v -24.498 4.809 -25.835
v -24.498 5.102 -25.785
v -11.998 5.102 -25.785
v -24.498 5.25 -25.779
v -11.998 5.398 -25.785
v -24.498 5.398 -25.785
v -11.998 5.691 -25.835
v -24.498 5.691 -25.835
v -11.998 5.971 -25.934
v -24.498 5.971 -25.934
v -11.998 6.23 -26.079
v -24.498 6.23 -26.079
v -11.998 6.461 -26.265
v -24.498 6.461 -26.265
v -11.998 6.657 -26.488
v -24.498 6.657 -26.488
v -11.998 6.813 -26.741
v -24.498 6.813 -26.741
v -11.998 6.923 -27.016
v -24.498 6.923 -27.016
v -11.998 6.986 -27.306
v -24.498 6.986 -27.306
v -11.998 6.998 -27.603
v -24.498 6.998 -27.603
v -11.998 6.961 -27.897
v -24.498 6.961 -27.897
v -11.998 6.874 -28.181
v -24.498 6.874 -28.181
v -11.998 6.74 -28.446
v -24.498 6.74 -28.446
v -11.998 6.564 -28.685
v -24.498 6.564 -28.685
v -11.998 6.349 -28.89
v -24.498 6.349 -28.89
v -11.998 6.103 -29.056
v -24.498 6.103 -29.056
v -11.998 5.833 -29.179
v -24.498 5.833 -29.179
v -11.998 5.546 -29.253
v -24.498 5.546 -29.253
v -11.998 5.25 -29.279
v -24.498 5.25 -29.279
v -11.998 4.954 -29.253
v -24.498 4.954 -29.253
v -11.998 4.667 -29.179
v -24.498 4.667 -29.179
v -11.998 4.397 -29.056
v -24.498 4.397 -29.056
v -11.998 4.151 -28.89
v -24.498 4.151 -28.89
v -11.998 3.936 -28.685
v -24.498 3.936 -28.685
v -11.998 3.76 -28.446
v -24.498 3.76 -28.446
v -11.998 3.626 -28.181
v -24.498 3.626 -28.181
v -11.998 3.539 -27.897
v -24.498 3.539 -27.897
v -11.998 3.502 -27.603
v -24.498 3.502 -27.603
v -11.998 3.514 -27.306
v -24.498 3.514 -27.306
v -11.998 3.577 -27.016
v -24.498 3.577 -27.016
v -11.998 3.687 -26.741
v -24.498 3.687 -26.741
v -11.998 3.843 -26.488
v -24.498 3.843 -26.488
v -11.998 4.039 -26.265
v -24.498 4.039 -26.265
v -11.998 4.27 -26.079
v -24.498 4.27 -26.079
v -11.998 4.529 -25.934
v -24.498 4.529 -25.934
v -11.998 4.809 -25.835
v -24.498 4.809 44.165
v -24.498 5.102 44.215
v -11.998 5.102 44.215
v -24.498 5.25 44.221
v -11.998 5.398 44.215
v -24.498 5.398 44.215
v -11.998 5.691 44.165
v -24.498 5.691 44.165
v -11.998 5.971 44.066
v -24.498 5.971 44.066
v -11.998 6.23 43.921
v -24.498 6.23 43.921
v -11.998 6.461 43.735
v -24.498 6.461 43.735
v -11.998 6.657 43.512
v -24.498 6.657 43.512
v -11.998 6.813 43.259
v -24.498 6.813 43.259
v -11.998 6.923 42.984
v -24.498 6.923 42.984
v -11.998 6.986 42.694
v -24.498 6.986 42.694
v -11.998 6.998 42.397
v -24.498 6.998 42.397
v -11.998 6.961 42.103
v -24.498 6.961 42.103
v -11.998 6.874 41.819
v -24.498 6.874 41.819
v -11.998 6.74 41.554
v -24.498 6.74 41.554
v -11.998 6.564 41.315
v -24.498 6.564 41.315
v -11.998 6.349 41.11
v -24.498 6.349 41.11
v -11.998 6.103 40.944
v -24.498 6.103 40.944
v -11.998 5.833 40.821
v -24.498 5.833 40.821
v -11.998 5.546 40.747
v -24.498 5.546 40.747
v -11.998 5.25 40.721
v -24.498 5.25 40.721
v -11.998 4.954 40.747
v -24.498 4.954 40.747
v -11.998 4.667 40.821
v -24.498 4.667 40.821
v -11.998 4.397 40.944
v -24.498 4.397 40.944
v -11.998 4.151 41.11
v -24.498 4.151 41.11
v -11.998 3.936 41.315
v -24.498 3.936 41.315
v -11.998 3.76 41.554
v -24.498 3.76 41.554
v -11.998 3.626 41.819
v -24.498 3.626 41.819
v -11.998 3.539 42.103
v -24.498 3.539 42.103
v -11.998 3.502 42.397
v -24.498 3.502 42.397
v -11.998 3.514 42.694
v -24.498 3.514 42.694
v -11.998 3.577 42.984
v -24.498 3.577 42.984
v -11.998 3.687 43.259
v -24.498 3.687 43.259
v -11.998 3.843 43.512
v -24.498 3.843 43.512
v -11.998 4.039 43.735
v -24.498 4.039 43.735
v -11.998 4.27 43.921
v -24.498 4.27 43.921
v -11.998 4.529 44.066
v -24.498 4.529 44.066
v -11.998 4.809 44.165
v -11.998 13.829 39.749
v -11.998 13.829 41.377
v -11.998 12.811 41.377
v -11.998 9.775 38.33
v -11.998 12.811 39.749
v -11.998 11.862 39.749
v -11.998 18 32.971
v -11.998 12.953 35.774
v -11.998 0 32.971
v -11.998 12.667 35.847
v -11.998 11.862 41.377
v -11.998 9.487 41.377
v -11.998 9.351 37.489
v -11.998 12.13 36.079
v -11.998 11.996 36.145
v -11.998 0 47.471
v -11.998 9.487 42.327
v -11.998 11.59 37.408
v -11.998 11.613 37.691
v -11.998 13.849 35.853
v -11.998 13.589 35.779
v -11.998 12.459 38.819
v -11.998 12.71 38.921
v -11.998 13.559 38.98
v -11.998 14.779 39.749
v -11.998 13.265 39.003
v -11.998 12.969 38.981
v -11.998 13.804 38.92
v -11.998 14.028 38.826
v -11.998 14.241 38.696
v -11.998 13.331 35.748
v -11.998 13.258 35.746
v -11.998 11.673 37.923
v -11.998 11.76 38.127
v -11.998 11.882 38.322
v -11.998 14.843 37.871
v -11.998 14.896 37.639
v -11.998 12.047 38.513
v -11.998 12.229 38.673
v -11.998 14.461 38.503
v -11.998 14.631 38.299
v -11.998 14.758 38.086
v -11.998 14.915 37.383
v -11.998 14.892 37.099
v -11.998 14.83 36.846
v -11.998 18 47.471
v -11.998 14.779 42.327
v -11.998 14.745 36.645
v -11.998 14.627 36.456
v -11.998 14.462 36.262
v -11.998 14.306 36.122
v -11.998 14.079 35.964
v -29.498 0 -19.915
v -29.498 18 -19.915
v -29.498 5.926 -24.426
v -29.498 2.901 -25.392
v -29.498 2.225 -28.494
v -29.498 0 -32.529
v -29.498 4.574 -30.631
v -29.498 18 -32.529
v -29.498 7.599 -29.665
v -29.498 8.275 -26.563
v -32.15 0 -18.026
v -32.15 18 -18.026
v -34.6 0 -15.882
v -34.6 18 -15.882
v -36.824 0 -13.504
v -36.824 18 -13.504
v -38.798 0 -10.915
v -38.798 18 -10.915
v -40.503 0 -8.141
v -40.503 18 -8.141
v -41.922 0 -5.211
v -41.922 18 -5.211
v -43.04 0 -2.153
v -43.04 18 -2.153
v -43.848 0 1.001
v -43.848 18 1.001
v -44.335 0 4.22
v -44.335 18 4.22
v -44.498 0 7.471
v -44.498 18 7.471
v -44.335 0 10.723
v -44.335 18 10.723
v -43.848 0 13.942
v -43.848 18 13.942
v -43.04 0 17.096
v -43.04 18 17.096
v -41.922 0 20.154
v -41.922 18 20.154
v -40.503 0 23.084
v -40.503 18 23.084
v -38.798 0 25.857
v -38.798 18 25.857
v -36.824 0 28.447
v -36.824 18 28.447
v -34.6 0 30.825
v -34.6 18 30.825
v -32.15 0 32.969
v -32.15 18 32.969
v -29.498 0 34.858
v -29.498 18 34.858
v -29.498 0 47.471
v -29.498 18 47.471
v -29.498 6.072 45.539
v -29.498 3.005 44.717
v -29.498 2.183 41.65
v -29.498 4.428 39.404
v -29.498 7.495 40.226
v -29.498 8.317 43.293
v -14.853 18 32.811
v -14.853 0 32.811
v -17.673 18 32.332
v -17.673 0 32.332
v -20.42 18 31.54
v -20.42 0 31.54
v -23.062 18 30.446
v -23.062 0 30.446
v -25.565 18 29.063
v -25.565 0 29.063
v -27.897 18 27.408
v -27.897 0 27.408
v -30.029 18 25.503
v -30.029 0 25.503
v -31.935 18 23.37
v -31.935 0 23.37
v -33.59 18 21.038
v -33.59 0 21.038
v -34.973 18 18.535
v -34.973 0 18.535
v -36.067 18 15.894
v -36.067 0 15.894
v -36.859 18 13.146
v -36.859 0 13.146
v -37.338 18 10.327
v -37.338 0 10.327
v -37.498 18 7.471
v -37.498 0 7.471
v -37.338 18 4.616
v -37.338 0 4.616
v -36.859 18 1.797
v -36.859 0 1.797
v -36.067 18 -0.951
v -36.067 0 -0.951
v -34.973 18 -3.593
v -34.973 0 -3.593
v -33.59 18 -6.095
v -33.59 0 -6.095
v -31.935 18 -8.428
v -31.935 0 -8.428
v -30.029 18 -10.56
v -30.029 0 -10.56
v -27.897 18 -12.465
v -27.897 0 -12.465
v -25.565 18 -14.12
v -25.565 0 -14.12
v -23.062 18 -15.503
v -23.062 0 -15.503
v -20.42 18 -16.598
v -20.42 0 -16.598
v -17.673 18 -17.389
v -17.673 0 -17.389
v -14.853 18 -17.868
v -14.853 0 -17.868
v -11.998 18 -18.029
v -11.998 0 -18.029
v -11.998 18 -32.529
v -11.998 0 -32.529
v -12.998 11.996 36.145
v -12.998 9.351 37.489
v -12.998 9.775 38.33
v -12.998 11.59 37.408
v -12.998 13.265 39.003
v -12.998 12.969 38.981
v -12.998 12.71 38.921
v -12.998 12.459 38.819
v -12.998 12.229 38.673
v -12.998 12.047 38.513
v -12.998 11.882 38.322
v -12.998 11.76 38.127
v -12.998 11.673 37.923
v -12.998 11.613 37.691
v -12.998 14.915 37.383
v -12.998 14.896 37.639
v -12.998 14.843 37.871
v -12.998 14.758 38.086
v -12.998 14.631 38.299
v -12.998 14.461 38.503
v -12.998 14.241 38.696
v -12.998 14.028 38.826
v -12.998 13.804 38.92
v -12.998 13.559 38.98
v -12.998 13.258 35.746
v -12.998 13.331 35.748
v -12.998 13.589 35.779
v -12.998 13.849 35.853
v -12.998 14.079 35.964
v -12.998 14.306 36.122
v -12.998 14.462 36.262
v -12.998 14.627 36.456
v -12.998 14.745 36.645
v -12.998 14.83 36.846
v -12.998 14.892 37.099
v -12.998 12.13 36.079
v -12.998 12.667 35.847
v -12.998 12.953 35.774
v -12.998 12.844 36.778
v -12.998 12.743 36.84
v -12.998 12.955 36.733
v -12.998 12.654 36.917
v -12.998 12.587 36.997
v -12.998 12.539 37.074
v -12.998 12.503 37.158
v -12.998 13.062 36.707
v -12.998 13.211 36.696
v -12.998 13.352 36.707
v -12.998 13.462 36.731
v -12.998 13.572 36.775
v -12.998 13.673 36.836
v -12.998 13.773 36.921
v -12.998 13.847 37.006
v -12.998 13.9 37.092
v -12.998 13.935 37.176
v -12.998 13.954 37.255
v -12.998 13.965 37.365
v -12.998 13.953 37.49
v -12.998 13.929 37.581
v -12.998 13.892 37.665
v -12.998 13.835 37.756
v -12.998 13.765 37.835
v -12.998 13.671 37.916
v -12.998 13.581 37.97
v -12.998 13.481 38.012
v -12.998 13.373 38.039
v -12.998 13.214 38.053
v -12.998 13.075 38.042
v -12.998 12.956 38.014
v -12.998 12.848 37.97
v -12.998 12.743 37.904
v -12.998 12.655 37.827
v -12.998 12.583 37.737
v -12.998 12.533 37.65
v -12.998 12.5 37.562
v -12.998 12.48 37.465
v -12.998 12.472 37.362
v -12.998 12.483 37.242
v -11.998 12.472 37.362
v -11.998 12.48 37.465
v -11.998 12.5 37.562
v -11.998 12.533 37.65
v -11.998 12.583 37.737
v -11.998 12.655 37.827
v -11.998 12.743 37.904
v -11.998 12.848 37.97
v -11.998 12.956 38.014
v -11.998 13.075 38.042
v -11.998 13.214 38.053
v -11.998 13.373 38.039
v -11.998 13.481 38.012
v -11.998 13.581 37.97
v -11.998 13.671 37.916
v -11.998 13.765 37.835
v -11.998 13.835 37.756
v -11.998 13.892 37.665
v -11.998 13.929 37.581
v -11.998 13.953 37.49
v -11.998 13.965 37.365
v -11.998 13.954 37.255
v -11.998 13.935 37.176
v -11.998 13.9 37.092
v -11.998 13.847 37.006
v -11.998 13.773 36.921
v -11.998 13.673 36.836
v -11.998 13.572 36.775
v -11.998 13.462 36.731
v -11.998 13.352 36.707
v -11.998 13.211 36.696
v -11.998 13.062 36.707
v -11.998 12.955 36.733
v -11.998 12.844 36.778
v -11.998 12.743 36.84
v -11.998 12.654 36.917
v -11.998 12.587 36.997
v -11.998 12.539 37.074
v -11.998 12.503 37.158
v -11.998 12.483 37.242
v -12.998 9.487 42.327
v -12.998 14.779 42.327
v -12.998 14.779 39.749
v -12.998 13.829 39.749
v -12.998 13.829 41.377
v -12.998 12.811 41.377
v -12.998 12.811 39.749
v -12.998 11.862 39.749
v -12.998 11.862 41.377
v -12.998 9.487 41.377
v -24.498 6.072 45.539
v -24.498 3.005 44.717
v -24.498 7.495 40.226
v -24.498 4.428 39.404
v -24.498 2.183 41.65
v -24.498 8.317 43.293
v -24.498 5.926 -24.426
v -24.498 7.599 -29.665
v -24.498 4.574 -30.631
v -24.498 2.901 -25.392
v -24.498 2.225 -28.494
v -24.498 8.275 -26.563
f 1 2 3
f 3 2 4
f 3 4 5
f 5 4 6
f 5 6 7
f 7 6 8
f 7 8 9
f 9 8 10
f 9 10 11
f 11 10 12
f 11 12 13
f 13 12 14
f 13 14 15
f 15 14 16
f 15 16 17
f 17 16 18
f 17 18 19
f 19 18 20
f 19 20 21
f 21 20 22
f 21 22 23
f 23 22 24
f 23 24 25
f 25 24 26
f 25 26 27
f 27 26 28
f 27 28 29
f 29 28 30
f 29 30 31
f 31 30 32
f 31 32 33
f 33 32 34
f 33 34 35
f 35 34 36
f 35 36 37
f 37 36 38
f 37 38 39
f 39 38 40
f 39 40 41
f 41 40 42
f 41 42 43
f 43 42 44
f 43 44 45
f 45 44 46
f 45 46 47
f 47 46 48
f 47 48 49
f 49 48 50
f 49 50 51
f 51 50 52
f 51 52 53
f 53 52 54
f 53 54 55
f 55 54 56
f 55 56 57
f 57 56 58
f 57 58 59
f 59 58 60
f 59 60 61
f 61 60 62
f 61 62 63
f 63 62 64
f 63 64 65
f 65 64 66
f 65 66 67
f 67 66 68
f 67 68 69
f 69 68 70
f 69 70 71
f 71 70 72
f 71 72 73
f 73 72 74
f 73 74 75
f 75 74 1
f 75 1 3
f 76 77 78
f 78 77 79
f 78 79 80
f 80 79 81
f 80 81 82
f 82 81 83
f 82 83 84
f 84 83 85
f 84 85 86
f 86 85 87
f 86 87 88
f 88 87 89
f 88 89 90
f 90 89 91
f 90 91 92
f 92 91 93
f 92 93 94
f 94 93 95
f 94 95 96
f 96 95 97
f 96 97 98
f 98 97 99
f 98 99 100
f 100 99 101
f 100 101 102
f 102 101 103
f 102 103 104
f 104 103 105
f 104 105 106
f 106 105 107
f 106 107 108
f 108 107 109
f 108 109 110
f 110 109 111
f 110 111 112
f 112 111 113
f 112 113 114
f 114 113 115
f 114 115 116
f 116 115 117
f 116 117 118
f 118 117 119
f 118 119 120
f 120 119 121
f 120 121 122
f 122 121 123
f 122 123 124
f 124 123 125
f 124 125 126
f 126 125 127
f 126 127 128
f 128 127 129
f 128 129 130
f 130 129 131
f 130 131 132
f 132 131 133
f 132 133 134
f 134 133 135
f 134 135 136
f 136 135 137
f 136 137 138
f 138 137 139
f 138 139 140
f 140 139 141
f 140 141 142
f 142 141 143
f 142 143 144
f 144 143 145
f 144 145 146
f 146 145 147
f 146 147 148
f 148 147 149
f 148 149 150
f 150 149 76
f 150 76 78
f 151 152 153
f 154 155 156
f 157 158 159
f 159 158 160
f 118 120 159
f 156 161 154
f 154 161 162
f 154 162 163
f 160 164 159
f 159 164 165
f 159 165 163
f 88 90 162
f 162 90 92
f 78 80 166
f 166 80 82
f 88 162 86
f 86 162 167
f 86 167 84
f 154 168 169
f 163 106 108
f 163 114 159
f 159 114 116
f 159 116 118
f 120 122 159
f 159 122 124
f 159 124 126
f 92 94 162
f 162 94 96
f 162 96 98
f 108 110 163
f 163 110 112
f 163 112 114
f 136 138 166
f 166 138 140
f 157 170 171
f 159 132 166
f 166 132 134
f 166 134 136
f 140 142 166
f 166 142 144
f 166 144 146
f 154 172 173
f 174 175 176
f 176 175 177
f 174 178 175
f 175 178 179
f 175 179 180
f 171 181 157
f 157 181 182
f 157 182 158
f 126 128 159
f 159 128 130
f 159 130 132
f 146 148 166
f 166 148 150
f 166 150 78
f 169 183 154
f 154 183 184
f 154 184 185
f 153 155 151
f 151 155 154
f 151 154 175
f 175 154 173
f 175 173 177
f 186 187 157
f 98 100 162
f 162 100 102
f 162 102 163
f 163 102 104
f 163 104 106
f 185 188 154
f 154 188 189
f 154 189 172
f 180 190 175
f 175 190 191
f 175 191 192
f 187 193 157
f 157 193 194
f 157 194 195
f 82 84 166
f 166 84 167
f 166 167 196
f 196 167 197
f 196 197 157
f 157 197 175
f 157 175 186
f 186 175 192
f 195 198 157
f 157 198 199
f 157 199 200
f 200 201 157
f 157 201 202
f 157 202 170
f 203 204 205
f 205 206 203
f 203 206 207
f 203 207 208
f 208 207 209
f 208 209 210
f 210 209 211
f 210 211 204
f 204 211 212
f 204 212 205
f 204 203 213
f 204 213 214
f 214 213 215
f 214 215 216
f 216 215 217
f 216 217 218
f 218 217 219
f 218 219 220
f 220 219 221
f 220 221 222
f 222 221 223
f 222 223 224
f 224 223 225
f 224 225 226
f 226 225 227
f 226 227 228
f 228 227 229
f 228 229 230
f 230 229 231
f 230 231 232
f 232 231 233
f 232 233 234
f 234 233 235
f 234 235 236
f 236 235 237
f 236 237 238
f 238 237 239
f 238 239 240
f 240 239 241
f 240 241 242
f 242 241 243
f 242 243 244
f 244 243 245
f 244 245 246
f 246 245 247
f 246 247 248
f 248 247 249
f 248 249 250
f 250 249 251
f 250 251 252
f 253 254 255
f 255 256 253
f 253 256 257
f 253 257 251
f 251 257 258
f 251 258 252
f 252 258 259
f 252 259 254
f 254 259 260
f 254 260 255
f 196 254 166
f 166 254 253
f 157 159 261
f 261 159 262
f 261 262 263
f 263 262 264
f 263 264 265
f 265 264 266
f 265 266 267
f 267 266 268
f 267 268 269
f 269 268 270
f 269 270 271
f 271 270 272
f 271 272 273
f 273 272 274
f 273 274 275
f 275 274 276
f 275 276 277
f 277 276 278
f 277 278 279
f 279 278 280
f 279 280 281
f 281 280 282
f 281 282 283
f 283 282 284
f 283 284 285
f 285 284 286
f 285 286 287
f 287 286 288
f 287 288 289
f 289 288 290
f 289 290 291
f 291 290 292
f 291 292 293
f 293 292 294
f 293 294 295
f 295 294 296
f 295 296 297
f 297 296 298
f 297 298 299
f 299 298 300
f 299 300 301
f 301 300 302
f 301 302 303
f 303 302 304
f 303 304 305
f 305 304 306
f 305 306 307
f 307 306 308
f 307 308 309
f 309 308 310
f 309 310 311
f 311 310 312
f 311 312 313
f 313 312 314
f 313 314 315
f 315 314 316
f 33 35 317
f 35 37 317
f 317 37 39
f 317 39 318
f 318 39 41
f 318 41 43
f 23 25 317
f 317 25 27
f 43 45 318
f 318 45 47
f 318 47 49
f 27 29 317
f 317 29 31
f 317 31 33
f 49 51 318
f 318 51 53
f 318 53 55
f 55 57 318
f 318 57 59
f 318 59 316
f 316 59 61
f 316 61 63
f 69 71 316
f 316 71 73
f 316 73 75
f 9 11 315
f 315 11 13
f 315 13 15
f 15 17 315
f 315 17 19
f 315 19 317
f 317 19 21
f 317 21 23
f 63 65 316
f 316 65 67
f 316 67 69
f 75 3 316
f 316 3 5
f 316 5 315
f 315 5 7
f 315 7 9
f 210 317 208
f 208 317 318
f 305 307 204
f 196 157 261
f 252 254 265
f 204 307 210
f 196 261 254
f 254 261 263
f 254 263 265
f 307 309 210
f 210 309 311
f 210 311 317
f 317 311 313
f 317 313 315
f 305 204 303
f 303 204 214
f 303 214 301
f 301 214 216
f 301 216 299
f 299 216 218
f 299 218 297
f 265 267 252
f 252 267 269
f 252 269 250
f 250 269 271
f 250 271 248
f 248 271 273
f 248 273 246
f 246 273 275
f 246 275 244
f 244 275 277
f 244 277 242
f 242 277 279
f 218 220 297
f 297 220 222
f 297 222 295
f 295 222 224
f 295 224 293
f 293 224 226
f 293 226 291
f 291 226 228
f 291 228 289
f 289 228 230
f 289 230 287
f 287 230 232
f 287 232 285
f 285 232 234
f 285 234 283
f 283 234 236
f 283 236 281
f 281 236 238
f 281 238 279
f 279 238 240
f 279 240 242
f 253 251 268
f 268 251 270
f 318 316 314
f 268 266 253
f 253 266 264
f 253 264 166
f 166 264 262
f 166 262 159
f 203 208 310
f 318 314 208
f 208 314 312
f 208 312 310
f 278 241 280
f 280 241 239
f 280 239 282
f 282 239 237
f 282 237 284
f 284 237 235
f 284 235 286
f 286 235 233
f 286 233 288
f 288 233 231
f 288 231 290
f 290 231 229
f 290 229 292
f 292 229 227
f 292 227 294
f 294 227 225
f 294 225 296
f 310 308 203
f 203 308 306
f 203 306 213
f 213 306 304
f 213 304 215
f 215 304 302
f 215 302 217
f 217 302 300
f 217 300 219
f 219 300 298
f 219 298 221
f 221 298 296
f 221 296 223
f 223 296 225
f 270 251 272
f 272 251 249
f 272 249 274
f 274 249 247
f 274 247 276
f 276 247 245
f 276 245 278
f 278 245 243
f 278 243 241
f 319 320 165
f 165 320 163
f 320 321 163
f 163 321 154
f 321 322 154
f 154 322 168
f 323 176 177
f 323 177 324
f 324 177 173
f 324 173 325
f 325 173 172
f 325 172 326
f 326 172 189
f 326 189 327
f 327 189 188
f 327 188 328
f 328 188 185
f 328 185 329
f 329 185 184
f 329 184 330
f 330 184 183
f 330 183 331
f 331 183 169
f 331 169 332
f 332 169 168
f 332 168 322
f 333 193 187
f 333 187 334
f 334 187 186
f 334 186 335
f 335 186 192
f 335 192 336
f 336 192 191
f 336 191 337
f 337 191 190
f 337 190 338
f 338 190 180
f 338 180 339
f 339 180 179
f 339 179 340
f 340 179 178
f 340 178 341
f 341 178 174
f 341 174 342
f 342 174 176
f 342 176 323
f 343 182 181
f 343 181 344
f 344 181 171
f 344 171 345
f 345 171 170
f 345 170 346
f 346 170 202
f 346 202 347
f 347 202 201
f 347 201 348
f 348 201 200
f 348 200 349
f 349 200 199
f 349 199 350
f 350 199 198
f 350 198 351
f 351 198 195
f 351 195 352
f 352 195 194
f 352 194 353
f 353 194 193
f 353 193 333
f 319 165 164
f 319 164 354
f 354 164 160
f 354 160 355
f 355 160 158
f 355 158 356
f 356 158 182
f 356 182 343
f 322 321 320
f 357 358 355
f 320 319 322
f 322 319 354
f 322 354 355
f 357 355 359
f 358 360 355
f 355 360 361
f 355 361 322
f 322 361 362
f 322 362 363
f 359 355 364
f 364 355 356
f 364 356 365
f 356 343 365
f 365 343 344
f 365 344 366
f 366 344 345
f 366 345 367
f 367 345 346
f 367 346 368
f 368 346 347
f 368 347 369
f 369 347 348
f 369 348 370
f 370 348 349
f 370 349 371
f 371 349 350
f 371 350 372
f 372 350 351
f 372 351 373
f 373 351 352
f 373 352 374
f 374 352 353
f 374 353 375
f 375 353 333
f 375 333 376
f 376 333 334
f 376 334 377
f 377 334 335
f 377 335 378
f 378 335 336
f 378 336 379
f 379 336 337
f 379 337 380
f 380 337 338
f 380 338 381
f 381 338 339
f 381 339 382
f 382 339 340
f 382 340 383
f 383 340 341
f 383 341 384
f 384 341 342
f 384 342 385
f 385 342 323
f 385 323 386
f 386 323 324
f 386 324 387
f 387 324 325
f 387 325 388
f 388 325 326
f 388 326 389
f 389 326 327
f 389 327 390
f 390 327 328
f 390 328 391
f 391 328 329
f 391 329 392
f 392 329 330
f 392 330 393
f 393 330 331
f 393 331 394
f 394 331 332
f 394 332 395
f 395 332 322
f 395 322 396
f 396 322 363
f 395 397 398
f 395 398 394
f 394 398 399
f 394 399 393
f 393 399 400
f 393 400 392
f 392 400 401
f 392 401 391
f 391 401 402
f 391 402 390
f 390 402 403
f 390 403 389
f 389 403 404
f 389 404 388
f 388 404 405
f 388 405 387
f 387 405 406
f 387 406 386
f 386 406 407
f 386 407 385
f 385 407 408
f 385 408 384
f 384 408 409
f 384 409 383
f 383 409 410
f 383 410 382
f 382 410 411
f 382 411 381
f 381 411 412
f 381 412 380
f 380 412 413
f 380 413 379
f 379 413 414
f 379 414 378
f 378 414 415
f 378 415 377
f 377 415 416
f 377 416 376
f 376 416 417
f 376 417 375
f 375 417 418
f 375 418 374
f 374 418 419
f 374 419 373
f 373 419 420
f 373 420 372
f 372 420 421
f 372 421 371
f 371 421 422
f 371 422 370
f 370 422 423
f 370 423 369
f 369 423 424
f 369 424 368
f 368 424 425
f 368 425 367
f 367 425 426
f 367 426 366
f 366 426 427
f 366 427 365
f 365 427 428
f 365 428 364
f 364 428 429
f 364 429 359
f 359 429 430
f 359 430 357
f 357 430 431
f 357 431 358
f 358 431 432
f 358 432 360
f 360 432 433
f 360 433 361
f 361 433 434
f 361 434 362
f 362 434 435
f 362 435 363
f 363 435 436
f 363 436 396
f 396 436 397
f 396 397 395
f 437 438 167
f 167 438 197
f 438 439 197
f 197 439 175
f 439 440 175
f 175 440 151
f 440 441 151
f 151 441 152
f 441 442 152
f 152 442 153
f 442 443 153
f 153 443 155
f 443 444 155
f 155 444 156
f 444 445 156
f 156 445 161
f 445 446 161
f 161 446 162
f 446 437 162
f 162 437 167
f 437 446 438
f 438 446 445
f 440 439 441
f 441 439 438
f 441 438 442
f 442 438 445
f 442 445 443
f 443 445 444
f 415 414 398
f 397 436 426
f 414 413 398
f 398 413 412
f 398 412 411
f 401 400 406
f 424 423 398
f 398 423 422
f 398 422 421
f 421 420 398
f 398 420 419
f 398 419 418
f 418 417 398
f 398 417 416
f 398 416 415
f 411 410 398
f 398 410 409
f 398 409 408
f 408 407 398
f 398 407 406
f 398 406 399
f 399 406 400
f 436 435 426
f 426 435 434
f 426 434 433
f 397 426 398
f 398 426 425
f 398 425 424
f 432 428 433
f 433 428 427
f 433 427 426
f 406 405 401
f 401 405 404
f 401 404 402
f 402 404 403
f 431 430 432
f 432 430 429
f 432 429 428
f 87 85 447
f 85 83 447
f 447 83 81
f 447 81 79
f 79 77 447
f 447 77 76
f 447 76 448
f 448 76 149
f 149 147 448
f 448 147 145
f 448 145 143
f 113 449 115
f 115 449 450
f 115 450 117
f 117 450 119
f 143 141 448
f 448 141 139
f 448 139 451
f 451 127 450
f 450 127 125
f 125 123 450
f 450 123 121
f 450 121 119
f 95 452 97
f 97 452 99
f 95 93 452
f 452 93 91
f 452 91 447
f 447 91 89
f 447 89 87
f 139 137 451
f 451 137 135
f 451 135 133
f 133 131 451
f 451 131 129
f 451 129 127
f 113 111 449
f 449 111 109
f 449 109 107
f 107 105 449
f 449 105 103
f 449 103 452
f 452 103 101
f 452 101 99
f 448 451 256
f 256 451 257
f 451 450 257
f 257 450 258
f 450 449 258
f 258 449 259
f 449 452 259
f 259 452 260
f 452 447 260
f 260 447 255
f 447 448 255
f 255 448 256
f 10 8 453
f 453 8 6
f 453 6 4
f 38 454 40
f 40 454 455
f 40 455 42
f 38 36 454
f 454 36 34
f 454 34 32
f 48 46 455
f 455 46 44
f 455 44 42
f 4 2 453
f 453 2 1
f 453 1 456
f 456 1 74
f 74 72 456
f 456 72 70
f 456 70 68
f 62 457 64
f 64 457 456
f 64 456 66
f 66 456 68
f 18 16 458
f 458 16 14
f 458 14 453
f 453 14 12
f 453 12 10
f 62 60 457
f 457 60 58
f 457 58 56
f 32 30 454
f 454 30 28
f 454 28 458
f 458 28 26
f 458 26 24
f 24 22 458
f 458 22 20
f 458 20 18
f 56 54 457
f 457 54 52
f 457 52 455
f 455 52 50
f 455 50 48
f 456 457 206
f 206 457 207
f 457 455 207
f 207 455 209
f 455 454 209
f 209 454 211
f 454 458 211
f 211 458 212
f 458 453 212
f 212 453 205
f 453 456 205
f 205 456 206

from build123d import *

# Parameters (mm, degrees)
BOSS_EXTRUDE1_DEPTH = 18
SKETCH2_R           = 1.75
CUT_EXTRUDE1_DEPTH  = 33.5
CUT_EXTRUDE2_DEPTH  = 1
CUT_EXTRUDE3_DEPTH  = 5


with BuildPart() as part:
    # Sketch1 → Boss-Extrude1 (new body)
    with BuildSketch(Plane(origin=(0, 0, 0), x_dir=(1, 0, 0), z_dir=(0, 1, 0))):
        with BuildLine():
            Line((-11.998275301, 32.528571429), (-29.498275301, 32.528571429))
            Line((-29.498275301, 32.528571429), (-29.498275301, 19.914699304))
            ThreePointArc((-29.498275301, 19.914699304), (-21.114218589, 23.723916882), (-11.998275301, 25.028571429))
            Line((-11.998275301, 25.028571429), (-11.998275301, 32.528571429))
        make_face()
        with BuildLine():
            ThreePointArc((-11.998275301, 25.028571429), (-21.114218589, 23.723916882), (-29.498275301, 19.914699304))
            ThreePointArc((-29.498275301, 19.914699304), (-44.498275301, -7.471428571), (-29.498275301, -34.857556447))
            ThreePointArc((-29.498275301, -34.857556447), (-21.114218589, -38.666774025), (-11.998275301, -39.971428571))
            Line((-11.998275301, -39.971428571), (-11.998275301, -32.971428571))
            ThreePointArc((-11.998275301, -32.971428571), (-37.498275301, -7.471428571), (-11.998275301, 18.028571429))
            Line((-11.998275301, 18.028571429), (-11.998275301, 25.028571429))
        make_face()
        with BuildLine():
            Line((-29.498275301, -34.857556447), (-29.498275301, -47.471428571))
            Line((-29.498275301, -47.471428571), (-11.998275301, -47.471428571))
            Line((-11.998275301, -47.471428571), (-11.998275301, -39.971428571))
            ThreePointArc((-11.998275301, -39.971428571), (-21.114218589, -38.666774025), (-29.498275301, -34.857556447))
        make_face()
    extrude(amount=BOSS_EXTRUDE1_DEPTH)

    # Sketch2 → Cut-Extrude1 (cut, through all)
    with BuildSketch(Plane(origin=(-11.998275301, 0, 0), x_dir=(0, 0, -1), z_dir=(1, 0, 0))):
        with Locations((-42.471428571, 5.25)):
            Circle(SKETCH2_R)
        with Locations((27.528571429, 5.25)):
            Circle(SKETCH2_R)
    extrude(amount=-CUT_EXTRUDE1_DEPTH, mode=Mode.SUBTRACT)

    # Sketch3 → Cut-Extrude2 (cut)
    with BuildSketch(Plane(origin=(-11.998275301, 0, 0), x_dir=(0, 0, -1), z_dir=(1, 0, 0))):
        Polygon((-42.326802517, 14.778828324), (-39.748811064, 14.778828324), (-39.748811064, 13.829042), (-41.377016192, 13.829042), (-41.377016192, 12.811413795), (-39.748811064, 12.811413795), (-39.748811064, 11.86162747), (-41.377016192, 11.86162747), (-41.377016192, 9.487161658), (-42.326802517, 9.487161658), align=None)
        with BuildLine():
            Line((-37.488828425, 9.351477897), (-38.330491753, 9.775489649))
            Line((-38.330491753, 9.775489649), (-37.408266192, 11.590259948))
            add(Edge.make_bspline(
                [(-37.408266192, 11.590259948), (-37.462753396, 11.591648755), (-37.569724958, 11.594375318), (-37.727232239, 11.617033031), (-37.87785266, 11.655711194), (-38.023361539, 11.707201572), (-38.161746535, 11.77622976), (-38.294685676, 11.858611279), (-38.420338635, 11.95759149), (-38.539294546, 12.068849341), (-38.647905095, 12.191825278), (-38.742176754, 12.324083818), (-38.824345348, 12.462269948), (-38.888244154, 12.60950332), (-38.939568, 12.76303987), (-38.977067789, 12.92367432), (-38.998111679, 13.092111431), (-39.00105302, 13.206747887), (-39.00255038, 13.265106369)],
                knots=[0, 0, 0, 0, 0.000163413, 0.000320819, 0.000476106, 0.000629341, 0.000782939, 0.000939124, 0.001097732, 0.001261968, 0.001427204, 0.001589, 0.001748625, 0.001908563, 0.002069464, 0.002233772, 0.002402593, 0.002577655, 0.002577655, 0.002577655, 0.002577655], degree=3))
            add(Edge.make_bspline(
                [(-39.00255038, 13.265106369), (-39.001161497, 13.321713522), (-38.99842473, 13.433256746), (-38.975695616, 13.5969659), (-38.938289378, 13.754150604), (-38.88696936, 13.904784157), (-38.818649356, 14.047850808), (-38.738682529, 14.185590652), (-38.640926713, 14.315153998), (-38.530495897, 14.437101726), (-38.409635229, 14.548662366), (-38.281412206, 14.646751431), (-38.146409838, 14.728744465), (-38.006363041, 14.797603487), (-37.858740367, 14.849050664), (-37.705675127, 14.887867179), (-37.546027089, 14.910269855), (-37.43766133, 14.913086693), (-37.382825487, 14.914512085)],
                knots=[0, 0, 0, 0, 0.000169767, 0.000334522, 0.000494702, 0.000653936, 0.000810896, 0.000969607, 0.001130944, 0.0012968, 0.001462589, 0.001623717, 0.001780246, 0.001935749, 0.002090981, 0.002248323, 0.002408879, 0.002573351, 0.002573351, 0.002573351, 0.002573351], degree=3))
            add(Edge.make_bspline(
                [(-37.382825487, 14.914512085), (-37.32548798, 14.913331855), (-37.212741531, 14.911011091), (-37.047695871, 14.885402378), (-36.889786863, 14.846113929), (-36.738372898, 14.792752199), (-36.595333717, 14.720329287), (-36.459472442, 14.633529923), (-36.331240989, 14.530433614), (-36.212016472, 14.414011914), (-36.103583105, 14.287381533), (-36.007470418, 14.154830073), (-35.92673168, 14.016616709), (-35.860601716, 13.873974949), (-35.809086806, 13.726681326), (-35.773676871, 13.574526911), (-35.750168601, 13.417771894), (-35.747493829, 13.311480409), (-35.746140124, 13.257686164)],
                knots=[0, 0, 0, 0, 0.000171885, 0.000337989, 0.000499701, 0.000659639, 0.000818449, 0.000979588, 0.001142488, 0.001311152, 0.001478788, 0.001642063, 0.001801688, 0.0019582, 0.00211308, 0.00226889, 0.002426296, 0.002587592, 0.002587592, 0.002587592, 0.002587592], degree=3))
            add(Edge.make_bspline(
                [(-35.746140124, 13.257686164), (-35.746878854, 13.21665857), (-35.748366821, 13.134019773), (-35.762997646, 13.010093938), (-35.785195556, 12.885824631), (-35.810960929, 12.781344964), (-35.837972338, 12.693274952), (-35.864257515, 12.618563879), (-35.897982171, 12.535620561), (-35.935639121, 12.443889047), (-35.9792503, 12.343771591), (-36.029719907, 12.235746792), (-36.083997697, 12.118212537), (-36.124005786, 12.037844215), (-36.144711171, 11.996251201)],
                knots=[0, 0, 0, 0, 0.000123036, 0.000247823, 0.000373829, 0.000501605, 0.000570344, 0.000650135, 0.000739108, 0.000838914, 0.000947623, 0.001066672, 0.001196607, 0.001335984, 0.001335984, 0.001335984, 0.001335984], degree=3))
            Line((-36.144711171, 11.996251201), (-37.488828425, 9.351477897))
        make_face()
        with BuildLine():
            add(Edge.make_bspline(
                [(-37.3616249, 12.472204393), (-37.316115096, 12.474883687), (-37.227199244, 12.480118421), (-37.099477536, 12.520594498), (-36.985173101, 12.58986006), (-36.883860931, 12.68188028), (-36.800139654, 12.794149159), (-36.739268808, 12.921957298), (-36.70177424, 13.062657931), (-36.697913156, 13.160632443), (-36.695926449, 13.211044871)],
                knots=[0, 0, 0, 0, 0.000136382, 0.000266459, 0.00039717, 0.000534504, 0.00067464, 0.000814508, 0.000956947, 0.001107922, 0.001107922, 0.001107922, 0.001107922], degree=3))
            add(Edge.make_bspline(
                [(-36.695926449, 13.211044871), (-36.698319221, 13.262505994), (-36.702973734, 13.362610164), (-36.740827484, 13.506688151), (-36.805511929, 13.636926106), (-36.893511418, 13.750138756), (-36.996249672, 13.84488328), (-37.111136974, 13.914091604), (-37.23538362, 13.956887813), (-37.321366646, 13.962095071), (-37.364804988, 13.96472576)],
                knots=[0, 0, 0, 0, 0.00015423, 0.000300014, 0.00044318, 0.000587566, 0.000727895, 0.000860059, 0.000987439, 0.001117495, 0.001117495, 0.001117495, 0.001117495], degree=3))
            add(Edge.make_bspline(
                [(-37.364804988, 13.96472576), (-37.410716877, 13.962161178), (-37.500864495, 13.95712564), (-37.630172561, 13.914432203), (-37.749374298, 13.84655291), (-37.853470467, 13.751486921), (-37.943561709, 13.639765246), (-38.006384791, 13.50908768), (-38.046128852, 13.366015125), (-38.050512553, 13.265731436), (-38.052764056, 13.214224959)],
                knots=[0, 0, 0, 0, 0.000137436, 0.000269855, 0.000404228, 0.000546134, 0.000690333, 0.00083208, 0.000978137, 0.001132367, 0.001132367, 0.001132367, 0.001132367], degree=3))
            add(Edge.make_bspline(
                [(-38.052764056, 13.214224959), (-38.050412222, 13.163452669), (-38.04583815, 13.064705867), (-38.007502778, 12.923207265), (-37.945058299, 12.794722755), (-37.859692241, 12.681568477), (-37.75454228, 12.589094862), (-37.635152594, 12.520567119), (-37.501976162, 12.48000867), (-37.409250814, 12.474852647), (-37.3616249, 12.472204393)],
                knots=[0, 0, 0, 0, 0.000152117, 0.000295852, 0.00043618, 0.000578438, 0.000718145, 0.000853439, 0.000988579, 0.00113129, 0.00113129, 0.00113129, 0.00113129], degree=3))
        make_face(mode=Mode.SUBTRACT)
    extrude(amount=-CUT_EXTRUDE2_DEPTH, mode=Mode.SUBTRACT)

    # Sketch4 → Cut-Extrude3 (cut)
    with BuildSketch(Plane.ZY.offset(29.498275301)):
        Polygon((-25.391799088, 2.901056132), (-24.425940196, 5.926027195), (-26.562712537, 8.274971063), (-29.665343769, 7.598943868), (-30.631202661, 4.573972805), (-28.49443032, 2.225028937), align=None)
        Polygon((44.716794169, 3.004634402), (45.538655018, 6.071860849), (43.293289421, 8.317226447), (40.226062974, 7.495365598), (39.404202124, 4.428139151), (41.649567722, 2.182773553), align=None)
    extrude(amount=-CUT_EXTRUDE3_DEPTH, mode=Mode.SUBTRACT)


solid = part.part
